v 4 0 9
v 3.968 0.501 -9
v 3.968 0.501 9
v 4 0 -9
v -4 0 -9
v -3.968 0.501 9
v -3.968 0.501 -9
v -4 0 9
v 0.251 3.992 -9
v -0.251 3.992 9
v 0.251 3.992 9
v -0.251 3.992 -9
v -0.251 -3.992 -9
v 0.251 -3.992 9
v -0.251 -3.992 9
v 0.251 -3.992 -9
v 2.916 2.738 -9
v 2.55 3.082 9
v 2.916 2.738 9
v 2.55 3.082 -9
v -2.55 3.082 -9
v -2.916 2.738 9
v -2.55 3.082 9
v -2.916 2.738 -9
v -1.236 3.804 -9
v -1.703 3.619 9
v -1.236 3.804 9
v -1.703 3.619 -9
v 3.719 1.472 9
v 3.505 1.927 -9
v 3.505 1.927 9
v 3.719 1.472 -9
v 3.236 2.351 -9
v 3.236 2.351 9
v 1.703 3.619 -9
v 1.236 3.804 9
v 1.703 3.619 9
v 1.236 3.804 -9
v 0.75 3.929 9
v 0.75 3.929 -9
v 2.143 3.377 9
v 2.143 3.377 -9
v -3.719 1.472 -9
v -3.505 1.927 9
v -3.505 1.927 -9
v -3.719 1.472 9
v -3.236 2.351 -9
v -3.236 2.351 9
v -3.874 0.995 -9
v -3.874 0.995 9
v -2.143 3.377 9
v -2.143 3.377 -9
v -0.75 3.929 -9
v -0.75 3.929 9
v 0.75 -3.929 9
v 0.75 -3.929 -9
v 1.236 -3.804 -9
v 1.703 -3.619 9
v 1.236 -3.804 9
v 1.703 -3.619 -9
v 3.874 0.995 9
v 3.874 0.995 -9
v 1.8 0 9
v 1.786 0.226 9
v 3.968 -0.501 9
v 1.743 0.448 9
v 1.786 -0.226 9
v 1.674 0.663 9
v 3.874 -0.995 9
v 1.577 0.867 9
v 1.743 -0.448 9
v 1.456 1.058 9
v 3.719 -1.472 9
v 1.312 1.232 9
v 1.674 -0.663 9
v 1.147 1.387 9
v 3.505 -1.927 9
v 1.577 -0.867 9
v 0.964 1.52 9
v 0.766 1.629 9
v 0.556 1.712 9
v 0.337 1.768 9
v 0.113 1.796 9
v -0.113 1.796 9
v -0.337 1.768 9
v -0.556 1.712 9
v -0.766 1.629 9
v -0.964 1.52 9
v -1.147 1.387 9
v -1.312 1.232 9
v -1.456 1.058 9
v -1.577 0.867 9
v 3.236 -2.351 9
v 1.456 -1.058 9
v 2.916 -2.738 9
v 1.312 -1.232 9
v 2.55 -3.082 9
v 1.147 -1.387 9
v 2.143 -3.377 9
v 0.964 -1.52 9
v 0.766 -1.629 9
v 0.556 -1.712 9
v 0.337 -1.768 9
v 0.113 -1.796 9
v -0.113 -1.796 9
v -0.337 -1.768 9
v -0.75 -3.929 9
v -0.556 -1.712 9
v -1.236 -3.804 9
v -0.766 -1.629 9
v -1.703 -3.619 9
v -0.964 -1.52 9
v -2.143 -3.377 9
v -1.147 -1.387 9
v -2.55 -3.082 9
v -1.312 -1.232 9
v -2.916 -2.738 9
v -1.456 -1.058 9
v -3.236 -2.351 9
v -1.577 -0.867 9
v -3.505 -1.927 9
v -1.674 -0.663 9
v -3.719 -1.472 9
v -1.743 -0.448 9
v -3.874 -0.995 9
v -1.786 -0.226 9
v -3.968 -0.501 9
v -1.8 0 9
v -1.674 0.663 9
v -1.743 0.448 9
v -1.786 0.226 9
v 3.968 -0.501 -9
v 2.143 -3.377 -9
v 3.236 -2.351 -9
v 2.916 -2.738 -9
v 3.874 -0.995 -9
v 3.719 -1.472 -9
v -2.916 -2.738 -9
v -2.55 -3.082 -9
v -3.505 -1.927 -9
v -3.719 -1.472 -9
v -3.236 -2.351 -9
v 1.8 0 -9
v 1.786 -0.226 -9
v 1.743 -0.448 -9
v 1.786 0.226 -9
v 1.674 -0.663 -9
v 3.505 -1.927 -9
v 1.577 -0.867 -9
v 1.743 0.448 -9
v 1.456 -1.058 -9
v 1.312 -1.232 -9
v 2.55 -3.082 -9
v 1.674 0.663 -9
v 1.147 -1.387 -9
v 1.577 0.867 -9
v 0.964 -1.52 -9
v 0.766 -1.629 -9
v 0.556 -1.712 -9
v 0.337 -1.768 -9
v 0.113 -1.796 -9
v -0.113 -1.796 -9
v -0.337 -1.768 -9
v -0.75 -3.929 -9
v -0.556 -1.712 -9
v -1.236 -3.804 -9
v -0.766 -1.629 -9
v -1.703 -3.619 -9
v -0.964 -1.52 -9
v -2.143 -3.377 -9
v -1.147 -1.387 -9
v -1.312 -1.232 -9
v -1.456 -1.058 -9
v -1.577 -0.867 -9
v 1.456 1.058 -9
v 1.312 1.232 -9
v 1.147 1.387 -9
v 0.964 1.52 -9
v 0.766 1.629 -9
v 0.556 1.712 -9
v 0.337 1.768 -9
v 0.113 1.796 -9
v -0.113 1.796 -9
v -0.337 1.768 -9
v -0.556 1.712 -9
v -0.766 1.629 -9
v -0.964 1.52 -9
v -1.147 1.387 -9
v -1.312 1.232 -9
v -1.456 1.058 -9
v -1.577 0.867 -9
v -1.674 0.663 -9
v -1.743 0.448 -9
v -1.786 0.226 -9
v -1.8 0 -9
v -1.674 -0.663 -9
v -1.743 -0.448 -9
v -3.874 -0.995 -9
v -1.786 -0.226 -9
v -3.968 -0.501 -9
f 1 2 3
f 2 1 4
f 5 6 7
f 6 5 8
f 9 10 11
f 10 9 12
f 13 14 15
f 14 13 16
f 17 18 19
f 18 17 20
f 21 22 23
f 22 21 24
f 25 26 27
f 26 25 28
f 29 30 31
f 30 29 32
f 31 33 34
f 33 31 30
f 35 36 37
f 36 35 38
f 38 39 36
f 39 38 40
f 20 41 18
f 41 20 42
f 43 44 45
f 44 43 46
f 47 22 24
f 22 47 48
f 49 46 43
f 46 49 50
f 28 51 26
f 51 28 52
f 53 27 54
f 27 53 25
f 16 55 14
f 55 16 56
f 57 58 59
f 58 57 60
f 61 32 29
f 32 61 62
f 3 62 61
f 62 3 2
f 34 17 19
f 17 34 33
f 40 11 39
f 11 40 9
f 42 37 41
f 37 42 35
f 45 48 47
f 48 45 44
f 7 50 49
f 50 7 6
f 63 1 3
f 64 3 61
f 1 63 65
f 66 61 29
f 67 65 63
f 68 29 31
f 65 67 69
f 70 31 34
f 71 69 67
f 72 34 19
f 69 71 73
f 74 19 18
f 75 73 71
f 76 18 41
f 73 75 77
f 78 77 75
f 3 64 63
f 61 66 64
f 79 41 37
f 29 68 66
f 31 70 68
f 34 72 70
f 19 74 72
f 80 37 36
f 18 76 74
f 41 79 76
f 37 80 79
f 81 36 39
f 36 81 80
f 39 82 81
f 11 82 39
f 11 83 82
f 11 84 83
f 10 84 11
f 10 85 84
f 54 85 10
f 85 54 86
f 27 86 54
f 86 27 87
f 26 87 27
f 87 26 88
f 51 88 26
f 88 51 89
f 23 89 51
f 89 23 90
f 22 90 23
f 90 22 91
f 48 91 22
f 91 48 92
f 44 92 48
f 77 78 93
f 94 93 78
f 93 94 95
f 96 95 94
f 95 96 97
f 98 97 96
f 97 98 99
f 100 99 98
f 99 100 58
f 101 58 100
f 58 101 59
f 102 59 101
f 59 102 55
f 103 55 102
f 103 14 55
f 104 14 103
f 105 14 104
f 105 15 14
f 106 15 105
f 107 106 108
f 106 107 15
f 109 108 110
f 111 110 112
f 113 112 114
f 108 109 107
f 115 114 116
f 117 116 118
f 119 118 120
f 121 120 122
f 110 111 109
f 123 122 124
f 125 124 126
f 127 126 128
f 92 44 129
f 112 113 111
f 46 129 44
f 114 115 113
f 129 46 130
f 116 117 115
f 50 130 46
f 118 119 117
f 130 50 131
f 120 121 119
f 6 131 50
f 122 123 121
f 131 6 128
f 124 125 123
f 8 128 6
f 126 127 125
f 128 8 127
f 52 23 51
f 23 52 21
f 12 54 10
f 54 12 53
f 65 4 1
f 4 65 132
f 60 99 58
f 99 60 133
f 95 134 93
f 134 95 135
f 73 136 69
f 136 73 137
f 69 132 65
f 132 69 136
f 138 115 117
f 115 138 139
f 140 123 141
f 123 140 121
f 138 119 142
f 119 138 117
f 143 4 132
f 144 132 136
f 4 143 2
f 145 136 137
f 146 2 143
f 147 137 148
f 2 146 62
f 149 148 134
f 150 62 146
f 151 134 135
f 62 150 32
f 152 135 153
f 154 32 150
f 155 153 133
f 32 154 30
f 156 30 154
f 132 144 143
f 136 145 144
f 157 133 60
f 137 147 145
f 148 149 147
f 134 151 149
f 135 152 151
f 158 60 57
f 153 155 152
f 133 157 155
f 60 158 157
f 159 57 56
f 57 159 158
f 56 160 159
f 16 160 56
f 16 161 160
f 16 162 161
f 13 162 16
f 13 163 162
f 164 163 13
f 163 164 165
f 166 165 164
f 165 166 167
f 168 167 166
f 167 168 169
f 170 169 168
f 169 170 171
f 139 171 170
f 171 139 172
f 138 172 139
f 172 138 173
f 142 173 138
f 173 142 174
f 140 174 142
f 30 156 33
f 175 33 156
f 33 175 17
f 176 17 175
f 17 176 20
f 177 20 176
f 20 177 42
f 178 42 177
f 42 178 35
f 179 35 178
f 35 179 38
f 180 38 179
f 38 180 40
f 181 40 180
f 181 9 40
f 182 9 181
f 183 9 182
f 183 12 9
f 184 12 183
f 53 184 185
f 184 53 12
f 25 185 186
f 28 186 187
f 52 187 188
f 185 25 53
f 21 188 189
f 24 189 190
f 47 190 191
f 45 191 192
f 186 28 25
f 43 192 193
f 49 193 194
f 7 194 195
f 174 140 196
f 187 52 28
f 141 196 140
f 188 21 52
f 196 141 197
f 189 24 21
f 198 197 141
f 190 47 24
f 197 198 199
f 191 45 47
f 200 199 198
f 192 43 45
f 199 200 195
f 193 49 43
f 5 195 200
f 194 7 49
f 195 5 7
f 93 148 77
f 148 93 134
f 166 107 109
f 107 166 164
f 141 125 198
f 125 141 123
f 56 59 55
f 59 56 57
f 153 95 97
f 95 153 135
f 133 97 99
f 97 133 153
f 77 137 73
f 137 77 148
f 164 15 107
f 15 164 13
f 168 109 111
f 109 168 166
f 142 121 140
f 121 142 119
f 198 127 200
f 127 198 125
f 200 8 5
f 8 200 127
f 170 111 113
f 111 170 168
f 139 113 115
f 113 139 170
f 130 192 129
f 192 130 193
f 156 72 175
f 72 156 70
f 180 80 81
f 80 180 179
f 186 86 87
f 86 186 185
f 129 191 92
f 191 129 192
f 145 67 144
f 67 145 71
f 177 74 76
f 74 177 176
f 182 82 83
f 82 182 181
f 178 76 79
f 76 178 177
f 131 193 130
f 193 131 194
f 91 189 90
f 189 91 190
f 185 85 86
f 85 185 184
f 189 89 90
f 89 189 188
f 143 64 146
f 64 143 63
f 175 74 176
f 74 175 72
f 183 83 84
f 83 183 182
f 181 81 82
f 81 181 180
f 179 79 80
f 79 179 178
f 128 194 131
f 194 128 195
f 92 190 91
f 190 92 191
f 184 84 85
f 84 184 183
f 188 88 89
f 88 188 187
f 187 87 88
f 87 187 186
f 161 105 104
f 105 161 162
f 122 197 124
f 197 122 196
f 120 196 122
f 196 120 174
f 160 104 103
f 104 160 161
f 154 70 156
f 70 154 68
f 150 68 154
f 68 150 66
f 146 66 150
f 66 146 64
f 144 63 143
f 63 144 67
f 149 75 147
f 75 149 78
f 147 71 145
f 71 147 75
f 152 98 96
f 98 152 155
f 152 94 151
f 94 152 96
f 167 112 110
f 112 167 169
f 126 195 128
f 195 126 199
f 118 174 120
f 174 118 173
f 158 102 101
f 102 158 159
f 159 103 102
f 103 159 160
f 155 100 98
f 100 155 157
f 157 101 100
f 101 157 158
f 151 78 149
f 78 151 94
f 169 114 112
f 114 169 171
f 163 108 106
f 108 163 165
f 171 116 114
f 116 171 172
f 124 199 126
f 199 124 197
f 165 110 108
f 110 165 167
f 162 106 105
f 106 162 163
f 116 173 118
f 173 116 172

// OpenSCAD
$fn = 50;


difference() {
	union() {
		translate(v = [0, 0, -9.0000000000]) {
			cylinder(h = 18, r = 4.0000000000);
		}
	}
	union() {
		translate(v = [0, 0, -100.0000000000]) {
			cylinder(h = 200, r = 1.8000000000);
		}
	}
}
